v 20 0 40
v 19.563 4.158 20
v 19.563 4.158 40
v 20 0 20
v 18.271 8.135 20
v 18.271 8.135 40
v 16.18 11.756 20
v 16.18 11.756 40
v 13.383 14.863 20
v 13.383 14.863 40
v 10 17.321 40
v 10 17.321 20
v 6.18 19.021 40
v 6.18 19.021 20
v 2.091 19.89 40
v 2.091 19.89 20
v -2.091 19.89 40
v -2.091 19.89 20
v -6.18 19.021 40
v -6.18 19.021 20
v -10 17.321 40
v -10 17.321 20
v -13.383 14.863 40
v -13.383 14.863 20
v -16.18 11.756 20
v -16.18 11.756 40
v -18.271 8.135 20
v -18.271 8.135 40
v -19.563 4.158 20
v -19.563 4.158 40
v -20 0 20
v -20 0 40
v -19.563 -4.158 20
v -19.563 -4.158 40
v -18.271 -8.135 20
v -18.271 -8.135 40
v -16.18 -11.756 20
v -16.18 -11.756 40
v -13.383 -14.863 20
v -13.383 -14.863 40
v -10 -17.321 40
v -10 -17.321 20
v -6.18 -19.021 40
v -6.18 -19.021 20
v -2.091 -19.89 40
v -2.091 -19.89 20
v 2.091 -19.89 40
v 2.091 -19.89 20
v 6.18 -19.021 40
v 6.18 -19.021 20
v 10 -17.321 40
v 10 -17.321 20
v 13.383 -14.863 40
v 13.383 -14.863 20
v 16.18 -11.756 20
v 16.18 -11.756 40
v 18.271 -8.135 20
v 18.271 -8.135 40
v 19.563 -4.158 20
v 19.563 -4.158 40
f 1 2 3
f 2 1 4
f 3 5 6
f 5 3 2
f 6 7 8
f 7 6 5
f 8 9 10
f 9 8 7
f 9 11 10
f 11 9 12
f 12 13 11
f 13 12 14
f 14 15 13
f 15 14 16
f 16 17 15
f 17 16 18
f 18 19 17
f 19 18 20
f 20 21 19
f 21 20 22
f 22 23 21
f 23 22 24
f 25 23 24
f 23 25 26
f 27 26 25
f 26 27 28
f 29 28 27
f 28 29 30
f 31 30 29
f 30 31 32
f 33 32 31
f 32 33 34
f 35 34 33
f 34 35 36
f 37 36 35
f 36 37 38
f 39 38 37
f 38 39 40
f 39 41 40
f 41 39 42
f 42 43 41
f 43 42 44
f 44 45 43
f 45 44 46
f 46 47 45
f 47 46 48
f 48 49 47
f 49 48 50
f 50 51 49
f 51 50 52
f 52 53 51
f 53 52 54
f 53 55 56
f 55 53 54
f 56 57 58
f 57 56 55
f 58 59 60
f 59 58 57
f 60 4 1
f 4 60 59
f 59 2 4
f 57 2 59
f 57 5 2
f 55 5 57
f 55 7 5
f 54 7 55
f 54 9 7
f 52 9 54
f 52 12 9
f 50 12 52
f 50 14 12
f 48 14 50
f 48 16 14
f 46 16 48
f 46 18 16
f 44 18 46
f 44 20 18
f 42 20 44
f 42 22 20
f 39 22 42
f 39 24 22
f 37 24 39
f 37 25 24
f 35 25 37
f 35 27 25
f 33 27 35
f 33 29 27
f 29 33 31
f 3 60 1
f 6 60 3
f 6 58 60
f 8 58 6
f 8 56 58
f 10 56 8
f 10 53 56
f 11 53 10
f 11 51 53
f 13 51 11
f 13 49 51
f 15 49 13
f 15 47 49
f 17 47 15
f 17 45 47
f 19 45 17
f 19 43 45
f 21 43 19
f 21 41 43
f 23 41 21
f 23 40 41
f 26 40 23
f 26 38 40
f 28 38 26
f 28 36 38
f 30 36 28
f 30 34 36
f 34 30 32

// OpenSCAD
//Overall Tank Dimensions
tank_length = 100;
tank_width = 60;

//Parts Dimensions
hull_width = 0;
hull_height = 0;
tank_height = 30;
track_width = 30;
track_height = 20;
turret_height = 20;


track_length = tank_length * 0.9;




module track( ){
     cube( [ track_length, track_width,  ], true );
     translate( [ track_length / 2,track_width / 2, 0 ] )
        wheel( track_width,track_height );
     translate( [ -track_length / 2, track_width/2, 0 ] )
        wheel(track_width,track_height);
}

module innertrack(){
     cube( [ track_length , track_width + 1, track_height * 0.8 ], true );
     translate( [ track_length / 2, track_width/2 + 2, 0 ] )
        wheel( track_width + 4,track_height * 0.8 );
     translate( [ -track_length / 2 , track_width/2 + 2, 0 ] )
        wheel(track_width + 4,track_height * 0.8 );
}

module wheel( width, diameter ){
    color( "purple")
         rotate( [ 90, 0, 0 ] ){
         cylinder( h = width, r = diameter / 2 );
    } 
}

module fulltrack( ){

    difference(){
    track();
    color( "green") innertrack();
    }
    
    translate([ 0,track_width/2,0] ){
        wheel(track_width/2,track_height);
        translate( [ track_length/3 ,0, 0 ] )
        wheel(track_width/2,track_height);
        translate( [-track_length/3,0, 0 ] )
        wheel(track_width/2,track_height);
    }
} 

module tracks(){
    translate( [ 0, -tank_width / 2, 0 ] )
        mirror([0,1,0])
        fulltrack();
    
    translate( [ 0, tank_width / 2, 0 ] )
        fulltrack();  
}

module hull(){
    color( "blue")
    difference(){
    translate( [ 0, 0, tank_height / 4 ] )
    cube( [ tank_length,tank_width ,3 * tank_height / 4 ], center = true);
      translate( [ 0, tank_width / 2, 0 ] )
        track();
      translate( [ 0, -tank_width / 2, 0 ] )
        track();
    }
}

module turret(){
    translate( [ 0, 0, tank_height  ] )
      cylinder( h = turret_height, r = tank_width/3, center = true  );
}



//tracks();
//hull();
turret();
